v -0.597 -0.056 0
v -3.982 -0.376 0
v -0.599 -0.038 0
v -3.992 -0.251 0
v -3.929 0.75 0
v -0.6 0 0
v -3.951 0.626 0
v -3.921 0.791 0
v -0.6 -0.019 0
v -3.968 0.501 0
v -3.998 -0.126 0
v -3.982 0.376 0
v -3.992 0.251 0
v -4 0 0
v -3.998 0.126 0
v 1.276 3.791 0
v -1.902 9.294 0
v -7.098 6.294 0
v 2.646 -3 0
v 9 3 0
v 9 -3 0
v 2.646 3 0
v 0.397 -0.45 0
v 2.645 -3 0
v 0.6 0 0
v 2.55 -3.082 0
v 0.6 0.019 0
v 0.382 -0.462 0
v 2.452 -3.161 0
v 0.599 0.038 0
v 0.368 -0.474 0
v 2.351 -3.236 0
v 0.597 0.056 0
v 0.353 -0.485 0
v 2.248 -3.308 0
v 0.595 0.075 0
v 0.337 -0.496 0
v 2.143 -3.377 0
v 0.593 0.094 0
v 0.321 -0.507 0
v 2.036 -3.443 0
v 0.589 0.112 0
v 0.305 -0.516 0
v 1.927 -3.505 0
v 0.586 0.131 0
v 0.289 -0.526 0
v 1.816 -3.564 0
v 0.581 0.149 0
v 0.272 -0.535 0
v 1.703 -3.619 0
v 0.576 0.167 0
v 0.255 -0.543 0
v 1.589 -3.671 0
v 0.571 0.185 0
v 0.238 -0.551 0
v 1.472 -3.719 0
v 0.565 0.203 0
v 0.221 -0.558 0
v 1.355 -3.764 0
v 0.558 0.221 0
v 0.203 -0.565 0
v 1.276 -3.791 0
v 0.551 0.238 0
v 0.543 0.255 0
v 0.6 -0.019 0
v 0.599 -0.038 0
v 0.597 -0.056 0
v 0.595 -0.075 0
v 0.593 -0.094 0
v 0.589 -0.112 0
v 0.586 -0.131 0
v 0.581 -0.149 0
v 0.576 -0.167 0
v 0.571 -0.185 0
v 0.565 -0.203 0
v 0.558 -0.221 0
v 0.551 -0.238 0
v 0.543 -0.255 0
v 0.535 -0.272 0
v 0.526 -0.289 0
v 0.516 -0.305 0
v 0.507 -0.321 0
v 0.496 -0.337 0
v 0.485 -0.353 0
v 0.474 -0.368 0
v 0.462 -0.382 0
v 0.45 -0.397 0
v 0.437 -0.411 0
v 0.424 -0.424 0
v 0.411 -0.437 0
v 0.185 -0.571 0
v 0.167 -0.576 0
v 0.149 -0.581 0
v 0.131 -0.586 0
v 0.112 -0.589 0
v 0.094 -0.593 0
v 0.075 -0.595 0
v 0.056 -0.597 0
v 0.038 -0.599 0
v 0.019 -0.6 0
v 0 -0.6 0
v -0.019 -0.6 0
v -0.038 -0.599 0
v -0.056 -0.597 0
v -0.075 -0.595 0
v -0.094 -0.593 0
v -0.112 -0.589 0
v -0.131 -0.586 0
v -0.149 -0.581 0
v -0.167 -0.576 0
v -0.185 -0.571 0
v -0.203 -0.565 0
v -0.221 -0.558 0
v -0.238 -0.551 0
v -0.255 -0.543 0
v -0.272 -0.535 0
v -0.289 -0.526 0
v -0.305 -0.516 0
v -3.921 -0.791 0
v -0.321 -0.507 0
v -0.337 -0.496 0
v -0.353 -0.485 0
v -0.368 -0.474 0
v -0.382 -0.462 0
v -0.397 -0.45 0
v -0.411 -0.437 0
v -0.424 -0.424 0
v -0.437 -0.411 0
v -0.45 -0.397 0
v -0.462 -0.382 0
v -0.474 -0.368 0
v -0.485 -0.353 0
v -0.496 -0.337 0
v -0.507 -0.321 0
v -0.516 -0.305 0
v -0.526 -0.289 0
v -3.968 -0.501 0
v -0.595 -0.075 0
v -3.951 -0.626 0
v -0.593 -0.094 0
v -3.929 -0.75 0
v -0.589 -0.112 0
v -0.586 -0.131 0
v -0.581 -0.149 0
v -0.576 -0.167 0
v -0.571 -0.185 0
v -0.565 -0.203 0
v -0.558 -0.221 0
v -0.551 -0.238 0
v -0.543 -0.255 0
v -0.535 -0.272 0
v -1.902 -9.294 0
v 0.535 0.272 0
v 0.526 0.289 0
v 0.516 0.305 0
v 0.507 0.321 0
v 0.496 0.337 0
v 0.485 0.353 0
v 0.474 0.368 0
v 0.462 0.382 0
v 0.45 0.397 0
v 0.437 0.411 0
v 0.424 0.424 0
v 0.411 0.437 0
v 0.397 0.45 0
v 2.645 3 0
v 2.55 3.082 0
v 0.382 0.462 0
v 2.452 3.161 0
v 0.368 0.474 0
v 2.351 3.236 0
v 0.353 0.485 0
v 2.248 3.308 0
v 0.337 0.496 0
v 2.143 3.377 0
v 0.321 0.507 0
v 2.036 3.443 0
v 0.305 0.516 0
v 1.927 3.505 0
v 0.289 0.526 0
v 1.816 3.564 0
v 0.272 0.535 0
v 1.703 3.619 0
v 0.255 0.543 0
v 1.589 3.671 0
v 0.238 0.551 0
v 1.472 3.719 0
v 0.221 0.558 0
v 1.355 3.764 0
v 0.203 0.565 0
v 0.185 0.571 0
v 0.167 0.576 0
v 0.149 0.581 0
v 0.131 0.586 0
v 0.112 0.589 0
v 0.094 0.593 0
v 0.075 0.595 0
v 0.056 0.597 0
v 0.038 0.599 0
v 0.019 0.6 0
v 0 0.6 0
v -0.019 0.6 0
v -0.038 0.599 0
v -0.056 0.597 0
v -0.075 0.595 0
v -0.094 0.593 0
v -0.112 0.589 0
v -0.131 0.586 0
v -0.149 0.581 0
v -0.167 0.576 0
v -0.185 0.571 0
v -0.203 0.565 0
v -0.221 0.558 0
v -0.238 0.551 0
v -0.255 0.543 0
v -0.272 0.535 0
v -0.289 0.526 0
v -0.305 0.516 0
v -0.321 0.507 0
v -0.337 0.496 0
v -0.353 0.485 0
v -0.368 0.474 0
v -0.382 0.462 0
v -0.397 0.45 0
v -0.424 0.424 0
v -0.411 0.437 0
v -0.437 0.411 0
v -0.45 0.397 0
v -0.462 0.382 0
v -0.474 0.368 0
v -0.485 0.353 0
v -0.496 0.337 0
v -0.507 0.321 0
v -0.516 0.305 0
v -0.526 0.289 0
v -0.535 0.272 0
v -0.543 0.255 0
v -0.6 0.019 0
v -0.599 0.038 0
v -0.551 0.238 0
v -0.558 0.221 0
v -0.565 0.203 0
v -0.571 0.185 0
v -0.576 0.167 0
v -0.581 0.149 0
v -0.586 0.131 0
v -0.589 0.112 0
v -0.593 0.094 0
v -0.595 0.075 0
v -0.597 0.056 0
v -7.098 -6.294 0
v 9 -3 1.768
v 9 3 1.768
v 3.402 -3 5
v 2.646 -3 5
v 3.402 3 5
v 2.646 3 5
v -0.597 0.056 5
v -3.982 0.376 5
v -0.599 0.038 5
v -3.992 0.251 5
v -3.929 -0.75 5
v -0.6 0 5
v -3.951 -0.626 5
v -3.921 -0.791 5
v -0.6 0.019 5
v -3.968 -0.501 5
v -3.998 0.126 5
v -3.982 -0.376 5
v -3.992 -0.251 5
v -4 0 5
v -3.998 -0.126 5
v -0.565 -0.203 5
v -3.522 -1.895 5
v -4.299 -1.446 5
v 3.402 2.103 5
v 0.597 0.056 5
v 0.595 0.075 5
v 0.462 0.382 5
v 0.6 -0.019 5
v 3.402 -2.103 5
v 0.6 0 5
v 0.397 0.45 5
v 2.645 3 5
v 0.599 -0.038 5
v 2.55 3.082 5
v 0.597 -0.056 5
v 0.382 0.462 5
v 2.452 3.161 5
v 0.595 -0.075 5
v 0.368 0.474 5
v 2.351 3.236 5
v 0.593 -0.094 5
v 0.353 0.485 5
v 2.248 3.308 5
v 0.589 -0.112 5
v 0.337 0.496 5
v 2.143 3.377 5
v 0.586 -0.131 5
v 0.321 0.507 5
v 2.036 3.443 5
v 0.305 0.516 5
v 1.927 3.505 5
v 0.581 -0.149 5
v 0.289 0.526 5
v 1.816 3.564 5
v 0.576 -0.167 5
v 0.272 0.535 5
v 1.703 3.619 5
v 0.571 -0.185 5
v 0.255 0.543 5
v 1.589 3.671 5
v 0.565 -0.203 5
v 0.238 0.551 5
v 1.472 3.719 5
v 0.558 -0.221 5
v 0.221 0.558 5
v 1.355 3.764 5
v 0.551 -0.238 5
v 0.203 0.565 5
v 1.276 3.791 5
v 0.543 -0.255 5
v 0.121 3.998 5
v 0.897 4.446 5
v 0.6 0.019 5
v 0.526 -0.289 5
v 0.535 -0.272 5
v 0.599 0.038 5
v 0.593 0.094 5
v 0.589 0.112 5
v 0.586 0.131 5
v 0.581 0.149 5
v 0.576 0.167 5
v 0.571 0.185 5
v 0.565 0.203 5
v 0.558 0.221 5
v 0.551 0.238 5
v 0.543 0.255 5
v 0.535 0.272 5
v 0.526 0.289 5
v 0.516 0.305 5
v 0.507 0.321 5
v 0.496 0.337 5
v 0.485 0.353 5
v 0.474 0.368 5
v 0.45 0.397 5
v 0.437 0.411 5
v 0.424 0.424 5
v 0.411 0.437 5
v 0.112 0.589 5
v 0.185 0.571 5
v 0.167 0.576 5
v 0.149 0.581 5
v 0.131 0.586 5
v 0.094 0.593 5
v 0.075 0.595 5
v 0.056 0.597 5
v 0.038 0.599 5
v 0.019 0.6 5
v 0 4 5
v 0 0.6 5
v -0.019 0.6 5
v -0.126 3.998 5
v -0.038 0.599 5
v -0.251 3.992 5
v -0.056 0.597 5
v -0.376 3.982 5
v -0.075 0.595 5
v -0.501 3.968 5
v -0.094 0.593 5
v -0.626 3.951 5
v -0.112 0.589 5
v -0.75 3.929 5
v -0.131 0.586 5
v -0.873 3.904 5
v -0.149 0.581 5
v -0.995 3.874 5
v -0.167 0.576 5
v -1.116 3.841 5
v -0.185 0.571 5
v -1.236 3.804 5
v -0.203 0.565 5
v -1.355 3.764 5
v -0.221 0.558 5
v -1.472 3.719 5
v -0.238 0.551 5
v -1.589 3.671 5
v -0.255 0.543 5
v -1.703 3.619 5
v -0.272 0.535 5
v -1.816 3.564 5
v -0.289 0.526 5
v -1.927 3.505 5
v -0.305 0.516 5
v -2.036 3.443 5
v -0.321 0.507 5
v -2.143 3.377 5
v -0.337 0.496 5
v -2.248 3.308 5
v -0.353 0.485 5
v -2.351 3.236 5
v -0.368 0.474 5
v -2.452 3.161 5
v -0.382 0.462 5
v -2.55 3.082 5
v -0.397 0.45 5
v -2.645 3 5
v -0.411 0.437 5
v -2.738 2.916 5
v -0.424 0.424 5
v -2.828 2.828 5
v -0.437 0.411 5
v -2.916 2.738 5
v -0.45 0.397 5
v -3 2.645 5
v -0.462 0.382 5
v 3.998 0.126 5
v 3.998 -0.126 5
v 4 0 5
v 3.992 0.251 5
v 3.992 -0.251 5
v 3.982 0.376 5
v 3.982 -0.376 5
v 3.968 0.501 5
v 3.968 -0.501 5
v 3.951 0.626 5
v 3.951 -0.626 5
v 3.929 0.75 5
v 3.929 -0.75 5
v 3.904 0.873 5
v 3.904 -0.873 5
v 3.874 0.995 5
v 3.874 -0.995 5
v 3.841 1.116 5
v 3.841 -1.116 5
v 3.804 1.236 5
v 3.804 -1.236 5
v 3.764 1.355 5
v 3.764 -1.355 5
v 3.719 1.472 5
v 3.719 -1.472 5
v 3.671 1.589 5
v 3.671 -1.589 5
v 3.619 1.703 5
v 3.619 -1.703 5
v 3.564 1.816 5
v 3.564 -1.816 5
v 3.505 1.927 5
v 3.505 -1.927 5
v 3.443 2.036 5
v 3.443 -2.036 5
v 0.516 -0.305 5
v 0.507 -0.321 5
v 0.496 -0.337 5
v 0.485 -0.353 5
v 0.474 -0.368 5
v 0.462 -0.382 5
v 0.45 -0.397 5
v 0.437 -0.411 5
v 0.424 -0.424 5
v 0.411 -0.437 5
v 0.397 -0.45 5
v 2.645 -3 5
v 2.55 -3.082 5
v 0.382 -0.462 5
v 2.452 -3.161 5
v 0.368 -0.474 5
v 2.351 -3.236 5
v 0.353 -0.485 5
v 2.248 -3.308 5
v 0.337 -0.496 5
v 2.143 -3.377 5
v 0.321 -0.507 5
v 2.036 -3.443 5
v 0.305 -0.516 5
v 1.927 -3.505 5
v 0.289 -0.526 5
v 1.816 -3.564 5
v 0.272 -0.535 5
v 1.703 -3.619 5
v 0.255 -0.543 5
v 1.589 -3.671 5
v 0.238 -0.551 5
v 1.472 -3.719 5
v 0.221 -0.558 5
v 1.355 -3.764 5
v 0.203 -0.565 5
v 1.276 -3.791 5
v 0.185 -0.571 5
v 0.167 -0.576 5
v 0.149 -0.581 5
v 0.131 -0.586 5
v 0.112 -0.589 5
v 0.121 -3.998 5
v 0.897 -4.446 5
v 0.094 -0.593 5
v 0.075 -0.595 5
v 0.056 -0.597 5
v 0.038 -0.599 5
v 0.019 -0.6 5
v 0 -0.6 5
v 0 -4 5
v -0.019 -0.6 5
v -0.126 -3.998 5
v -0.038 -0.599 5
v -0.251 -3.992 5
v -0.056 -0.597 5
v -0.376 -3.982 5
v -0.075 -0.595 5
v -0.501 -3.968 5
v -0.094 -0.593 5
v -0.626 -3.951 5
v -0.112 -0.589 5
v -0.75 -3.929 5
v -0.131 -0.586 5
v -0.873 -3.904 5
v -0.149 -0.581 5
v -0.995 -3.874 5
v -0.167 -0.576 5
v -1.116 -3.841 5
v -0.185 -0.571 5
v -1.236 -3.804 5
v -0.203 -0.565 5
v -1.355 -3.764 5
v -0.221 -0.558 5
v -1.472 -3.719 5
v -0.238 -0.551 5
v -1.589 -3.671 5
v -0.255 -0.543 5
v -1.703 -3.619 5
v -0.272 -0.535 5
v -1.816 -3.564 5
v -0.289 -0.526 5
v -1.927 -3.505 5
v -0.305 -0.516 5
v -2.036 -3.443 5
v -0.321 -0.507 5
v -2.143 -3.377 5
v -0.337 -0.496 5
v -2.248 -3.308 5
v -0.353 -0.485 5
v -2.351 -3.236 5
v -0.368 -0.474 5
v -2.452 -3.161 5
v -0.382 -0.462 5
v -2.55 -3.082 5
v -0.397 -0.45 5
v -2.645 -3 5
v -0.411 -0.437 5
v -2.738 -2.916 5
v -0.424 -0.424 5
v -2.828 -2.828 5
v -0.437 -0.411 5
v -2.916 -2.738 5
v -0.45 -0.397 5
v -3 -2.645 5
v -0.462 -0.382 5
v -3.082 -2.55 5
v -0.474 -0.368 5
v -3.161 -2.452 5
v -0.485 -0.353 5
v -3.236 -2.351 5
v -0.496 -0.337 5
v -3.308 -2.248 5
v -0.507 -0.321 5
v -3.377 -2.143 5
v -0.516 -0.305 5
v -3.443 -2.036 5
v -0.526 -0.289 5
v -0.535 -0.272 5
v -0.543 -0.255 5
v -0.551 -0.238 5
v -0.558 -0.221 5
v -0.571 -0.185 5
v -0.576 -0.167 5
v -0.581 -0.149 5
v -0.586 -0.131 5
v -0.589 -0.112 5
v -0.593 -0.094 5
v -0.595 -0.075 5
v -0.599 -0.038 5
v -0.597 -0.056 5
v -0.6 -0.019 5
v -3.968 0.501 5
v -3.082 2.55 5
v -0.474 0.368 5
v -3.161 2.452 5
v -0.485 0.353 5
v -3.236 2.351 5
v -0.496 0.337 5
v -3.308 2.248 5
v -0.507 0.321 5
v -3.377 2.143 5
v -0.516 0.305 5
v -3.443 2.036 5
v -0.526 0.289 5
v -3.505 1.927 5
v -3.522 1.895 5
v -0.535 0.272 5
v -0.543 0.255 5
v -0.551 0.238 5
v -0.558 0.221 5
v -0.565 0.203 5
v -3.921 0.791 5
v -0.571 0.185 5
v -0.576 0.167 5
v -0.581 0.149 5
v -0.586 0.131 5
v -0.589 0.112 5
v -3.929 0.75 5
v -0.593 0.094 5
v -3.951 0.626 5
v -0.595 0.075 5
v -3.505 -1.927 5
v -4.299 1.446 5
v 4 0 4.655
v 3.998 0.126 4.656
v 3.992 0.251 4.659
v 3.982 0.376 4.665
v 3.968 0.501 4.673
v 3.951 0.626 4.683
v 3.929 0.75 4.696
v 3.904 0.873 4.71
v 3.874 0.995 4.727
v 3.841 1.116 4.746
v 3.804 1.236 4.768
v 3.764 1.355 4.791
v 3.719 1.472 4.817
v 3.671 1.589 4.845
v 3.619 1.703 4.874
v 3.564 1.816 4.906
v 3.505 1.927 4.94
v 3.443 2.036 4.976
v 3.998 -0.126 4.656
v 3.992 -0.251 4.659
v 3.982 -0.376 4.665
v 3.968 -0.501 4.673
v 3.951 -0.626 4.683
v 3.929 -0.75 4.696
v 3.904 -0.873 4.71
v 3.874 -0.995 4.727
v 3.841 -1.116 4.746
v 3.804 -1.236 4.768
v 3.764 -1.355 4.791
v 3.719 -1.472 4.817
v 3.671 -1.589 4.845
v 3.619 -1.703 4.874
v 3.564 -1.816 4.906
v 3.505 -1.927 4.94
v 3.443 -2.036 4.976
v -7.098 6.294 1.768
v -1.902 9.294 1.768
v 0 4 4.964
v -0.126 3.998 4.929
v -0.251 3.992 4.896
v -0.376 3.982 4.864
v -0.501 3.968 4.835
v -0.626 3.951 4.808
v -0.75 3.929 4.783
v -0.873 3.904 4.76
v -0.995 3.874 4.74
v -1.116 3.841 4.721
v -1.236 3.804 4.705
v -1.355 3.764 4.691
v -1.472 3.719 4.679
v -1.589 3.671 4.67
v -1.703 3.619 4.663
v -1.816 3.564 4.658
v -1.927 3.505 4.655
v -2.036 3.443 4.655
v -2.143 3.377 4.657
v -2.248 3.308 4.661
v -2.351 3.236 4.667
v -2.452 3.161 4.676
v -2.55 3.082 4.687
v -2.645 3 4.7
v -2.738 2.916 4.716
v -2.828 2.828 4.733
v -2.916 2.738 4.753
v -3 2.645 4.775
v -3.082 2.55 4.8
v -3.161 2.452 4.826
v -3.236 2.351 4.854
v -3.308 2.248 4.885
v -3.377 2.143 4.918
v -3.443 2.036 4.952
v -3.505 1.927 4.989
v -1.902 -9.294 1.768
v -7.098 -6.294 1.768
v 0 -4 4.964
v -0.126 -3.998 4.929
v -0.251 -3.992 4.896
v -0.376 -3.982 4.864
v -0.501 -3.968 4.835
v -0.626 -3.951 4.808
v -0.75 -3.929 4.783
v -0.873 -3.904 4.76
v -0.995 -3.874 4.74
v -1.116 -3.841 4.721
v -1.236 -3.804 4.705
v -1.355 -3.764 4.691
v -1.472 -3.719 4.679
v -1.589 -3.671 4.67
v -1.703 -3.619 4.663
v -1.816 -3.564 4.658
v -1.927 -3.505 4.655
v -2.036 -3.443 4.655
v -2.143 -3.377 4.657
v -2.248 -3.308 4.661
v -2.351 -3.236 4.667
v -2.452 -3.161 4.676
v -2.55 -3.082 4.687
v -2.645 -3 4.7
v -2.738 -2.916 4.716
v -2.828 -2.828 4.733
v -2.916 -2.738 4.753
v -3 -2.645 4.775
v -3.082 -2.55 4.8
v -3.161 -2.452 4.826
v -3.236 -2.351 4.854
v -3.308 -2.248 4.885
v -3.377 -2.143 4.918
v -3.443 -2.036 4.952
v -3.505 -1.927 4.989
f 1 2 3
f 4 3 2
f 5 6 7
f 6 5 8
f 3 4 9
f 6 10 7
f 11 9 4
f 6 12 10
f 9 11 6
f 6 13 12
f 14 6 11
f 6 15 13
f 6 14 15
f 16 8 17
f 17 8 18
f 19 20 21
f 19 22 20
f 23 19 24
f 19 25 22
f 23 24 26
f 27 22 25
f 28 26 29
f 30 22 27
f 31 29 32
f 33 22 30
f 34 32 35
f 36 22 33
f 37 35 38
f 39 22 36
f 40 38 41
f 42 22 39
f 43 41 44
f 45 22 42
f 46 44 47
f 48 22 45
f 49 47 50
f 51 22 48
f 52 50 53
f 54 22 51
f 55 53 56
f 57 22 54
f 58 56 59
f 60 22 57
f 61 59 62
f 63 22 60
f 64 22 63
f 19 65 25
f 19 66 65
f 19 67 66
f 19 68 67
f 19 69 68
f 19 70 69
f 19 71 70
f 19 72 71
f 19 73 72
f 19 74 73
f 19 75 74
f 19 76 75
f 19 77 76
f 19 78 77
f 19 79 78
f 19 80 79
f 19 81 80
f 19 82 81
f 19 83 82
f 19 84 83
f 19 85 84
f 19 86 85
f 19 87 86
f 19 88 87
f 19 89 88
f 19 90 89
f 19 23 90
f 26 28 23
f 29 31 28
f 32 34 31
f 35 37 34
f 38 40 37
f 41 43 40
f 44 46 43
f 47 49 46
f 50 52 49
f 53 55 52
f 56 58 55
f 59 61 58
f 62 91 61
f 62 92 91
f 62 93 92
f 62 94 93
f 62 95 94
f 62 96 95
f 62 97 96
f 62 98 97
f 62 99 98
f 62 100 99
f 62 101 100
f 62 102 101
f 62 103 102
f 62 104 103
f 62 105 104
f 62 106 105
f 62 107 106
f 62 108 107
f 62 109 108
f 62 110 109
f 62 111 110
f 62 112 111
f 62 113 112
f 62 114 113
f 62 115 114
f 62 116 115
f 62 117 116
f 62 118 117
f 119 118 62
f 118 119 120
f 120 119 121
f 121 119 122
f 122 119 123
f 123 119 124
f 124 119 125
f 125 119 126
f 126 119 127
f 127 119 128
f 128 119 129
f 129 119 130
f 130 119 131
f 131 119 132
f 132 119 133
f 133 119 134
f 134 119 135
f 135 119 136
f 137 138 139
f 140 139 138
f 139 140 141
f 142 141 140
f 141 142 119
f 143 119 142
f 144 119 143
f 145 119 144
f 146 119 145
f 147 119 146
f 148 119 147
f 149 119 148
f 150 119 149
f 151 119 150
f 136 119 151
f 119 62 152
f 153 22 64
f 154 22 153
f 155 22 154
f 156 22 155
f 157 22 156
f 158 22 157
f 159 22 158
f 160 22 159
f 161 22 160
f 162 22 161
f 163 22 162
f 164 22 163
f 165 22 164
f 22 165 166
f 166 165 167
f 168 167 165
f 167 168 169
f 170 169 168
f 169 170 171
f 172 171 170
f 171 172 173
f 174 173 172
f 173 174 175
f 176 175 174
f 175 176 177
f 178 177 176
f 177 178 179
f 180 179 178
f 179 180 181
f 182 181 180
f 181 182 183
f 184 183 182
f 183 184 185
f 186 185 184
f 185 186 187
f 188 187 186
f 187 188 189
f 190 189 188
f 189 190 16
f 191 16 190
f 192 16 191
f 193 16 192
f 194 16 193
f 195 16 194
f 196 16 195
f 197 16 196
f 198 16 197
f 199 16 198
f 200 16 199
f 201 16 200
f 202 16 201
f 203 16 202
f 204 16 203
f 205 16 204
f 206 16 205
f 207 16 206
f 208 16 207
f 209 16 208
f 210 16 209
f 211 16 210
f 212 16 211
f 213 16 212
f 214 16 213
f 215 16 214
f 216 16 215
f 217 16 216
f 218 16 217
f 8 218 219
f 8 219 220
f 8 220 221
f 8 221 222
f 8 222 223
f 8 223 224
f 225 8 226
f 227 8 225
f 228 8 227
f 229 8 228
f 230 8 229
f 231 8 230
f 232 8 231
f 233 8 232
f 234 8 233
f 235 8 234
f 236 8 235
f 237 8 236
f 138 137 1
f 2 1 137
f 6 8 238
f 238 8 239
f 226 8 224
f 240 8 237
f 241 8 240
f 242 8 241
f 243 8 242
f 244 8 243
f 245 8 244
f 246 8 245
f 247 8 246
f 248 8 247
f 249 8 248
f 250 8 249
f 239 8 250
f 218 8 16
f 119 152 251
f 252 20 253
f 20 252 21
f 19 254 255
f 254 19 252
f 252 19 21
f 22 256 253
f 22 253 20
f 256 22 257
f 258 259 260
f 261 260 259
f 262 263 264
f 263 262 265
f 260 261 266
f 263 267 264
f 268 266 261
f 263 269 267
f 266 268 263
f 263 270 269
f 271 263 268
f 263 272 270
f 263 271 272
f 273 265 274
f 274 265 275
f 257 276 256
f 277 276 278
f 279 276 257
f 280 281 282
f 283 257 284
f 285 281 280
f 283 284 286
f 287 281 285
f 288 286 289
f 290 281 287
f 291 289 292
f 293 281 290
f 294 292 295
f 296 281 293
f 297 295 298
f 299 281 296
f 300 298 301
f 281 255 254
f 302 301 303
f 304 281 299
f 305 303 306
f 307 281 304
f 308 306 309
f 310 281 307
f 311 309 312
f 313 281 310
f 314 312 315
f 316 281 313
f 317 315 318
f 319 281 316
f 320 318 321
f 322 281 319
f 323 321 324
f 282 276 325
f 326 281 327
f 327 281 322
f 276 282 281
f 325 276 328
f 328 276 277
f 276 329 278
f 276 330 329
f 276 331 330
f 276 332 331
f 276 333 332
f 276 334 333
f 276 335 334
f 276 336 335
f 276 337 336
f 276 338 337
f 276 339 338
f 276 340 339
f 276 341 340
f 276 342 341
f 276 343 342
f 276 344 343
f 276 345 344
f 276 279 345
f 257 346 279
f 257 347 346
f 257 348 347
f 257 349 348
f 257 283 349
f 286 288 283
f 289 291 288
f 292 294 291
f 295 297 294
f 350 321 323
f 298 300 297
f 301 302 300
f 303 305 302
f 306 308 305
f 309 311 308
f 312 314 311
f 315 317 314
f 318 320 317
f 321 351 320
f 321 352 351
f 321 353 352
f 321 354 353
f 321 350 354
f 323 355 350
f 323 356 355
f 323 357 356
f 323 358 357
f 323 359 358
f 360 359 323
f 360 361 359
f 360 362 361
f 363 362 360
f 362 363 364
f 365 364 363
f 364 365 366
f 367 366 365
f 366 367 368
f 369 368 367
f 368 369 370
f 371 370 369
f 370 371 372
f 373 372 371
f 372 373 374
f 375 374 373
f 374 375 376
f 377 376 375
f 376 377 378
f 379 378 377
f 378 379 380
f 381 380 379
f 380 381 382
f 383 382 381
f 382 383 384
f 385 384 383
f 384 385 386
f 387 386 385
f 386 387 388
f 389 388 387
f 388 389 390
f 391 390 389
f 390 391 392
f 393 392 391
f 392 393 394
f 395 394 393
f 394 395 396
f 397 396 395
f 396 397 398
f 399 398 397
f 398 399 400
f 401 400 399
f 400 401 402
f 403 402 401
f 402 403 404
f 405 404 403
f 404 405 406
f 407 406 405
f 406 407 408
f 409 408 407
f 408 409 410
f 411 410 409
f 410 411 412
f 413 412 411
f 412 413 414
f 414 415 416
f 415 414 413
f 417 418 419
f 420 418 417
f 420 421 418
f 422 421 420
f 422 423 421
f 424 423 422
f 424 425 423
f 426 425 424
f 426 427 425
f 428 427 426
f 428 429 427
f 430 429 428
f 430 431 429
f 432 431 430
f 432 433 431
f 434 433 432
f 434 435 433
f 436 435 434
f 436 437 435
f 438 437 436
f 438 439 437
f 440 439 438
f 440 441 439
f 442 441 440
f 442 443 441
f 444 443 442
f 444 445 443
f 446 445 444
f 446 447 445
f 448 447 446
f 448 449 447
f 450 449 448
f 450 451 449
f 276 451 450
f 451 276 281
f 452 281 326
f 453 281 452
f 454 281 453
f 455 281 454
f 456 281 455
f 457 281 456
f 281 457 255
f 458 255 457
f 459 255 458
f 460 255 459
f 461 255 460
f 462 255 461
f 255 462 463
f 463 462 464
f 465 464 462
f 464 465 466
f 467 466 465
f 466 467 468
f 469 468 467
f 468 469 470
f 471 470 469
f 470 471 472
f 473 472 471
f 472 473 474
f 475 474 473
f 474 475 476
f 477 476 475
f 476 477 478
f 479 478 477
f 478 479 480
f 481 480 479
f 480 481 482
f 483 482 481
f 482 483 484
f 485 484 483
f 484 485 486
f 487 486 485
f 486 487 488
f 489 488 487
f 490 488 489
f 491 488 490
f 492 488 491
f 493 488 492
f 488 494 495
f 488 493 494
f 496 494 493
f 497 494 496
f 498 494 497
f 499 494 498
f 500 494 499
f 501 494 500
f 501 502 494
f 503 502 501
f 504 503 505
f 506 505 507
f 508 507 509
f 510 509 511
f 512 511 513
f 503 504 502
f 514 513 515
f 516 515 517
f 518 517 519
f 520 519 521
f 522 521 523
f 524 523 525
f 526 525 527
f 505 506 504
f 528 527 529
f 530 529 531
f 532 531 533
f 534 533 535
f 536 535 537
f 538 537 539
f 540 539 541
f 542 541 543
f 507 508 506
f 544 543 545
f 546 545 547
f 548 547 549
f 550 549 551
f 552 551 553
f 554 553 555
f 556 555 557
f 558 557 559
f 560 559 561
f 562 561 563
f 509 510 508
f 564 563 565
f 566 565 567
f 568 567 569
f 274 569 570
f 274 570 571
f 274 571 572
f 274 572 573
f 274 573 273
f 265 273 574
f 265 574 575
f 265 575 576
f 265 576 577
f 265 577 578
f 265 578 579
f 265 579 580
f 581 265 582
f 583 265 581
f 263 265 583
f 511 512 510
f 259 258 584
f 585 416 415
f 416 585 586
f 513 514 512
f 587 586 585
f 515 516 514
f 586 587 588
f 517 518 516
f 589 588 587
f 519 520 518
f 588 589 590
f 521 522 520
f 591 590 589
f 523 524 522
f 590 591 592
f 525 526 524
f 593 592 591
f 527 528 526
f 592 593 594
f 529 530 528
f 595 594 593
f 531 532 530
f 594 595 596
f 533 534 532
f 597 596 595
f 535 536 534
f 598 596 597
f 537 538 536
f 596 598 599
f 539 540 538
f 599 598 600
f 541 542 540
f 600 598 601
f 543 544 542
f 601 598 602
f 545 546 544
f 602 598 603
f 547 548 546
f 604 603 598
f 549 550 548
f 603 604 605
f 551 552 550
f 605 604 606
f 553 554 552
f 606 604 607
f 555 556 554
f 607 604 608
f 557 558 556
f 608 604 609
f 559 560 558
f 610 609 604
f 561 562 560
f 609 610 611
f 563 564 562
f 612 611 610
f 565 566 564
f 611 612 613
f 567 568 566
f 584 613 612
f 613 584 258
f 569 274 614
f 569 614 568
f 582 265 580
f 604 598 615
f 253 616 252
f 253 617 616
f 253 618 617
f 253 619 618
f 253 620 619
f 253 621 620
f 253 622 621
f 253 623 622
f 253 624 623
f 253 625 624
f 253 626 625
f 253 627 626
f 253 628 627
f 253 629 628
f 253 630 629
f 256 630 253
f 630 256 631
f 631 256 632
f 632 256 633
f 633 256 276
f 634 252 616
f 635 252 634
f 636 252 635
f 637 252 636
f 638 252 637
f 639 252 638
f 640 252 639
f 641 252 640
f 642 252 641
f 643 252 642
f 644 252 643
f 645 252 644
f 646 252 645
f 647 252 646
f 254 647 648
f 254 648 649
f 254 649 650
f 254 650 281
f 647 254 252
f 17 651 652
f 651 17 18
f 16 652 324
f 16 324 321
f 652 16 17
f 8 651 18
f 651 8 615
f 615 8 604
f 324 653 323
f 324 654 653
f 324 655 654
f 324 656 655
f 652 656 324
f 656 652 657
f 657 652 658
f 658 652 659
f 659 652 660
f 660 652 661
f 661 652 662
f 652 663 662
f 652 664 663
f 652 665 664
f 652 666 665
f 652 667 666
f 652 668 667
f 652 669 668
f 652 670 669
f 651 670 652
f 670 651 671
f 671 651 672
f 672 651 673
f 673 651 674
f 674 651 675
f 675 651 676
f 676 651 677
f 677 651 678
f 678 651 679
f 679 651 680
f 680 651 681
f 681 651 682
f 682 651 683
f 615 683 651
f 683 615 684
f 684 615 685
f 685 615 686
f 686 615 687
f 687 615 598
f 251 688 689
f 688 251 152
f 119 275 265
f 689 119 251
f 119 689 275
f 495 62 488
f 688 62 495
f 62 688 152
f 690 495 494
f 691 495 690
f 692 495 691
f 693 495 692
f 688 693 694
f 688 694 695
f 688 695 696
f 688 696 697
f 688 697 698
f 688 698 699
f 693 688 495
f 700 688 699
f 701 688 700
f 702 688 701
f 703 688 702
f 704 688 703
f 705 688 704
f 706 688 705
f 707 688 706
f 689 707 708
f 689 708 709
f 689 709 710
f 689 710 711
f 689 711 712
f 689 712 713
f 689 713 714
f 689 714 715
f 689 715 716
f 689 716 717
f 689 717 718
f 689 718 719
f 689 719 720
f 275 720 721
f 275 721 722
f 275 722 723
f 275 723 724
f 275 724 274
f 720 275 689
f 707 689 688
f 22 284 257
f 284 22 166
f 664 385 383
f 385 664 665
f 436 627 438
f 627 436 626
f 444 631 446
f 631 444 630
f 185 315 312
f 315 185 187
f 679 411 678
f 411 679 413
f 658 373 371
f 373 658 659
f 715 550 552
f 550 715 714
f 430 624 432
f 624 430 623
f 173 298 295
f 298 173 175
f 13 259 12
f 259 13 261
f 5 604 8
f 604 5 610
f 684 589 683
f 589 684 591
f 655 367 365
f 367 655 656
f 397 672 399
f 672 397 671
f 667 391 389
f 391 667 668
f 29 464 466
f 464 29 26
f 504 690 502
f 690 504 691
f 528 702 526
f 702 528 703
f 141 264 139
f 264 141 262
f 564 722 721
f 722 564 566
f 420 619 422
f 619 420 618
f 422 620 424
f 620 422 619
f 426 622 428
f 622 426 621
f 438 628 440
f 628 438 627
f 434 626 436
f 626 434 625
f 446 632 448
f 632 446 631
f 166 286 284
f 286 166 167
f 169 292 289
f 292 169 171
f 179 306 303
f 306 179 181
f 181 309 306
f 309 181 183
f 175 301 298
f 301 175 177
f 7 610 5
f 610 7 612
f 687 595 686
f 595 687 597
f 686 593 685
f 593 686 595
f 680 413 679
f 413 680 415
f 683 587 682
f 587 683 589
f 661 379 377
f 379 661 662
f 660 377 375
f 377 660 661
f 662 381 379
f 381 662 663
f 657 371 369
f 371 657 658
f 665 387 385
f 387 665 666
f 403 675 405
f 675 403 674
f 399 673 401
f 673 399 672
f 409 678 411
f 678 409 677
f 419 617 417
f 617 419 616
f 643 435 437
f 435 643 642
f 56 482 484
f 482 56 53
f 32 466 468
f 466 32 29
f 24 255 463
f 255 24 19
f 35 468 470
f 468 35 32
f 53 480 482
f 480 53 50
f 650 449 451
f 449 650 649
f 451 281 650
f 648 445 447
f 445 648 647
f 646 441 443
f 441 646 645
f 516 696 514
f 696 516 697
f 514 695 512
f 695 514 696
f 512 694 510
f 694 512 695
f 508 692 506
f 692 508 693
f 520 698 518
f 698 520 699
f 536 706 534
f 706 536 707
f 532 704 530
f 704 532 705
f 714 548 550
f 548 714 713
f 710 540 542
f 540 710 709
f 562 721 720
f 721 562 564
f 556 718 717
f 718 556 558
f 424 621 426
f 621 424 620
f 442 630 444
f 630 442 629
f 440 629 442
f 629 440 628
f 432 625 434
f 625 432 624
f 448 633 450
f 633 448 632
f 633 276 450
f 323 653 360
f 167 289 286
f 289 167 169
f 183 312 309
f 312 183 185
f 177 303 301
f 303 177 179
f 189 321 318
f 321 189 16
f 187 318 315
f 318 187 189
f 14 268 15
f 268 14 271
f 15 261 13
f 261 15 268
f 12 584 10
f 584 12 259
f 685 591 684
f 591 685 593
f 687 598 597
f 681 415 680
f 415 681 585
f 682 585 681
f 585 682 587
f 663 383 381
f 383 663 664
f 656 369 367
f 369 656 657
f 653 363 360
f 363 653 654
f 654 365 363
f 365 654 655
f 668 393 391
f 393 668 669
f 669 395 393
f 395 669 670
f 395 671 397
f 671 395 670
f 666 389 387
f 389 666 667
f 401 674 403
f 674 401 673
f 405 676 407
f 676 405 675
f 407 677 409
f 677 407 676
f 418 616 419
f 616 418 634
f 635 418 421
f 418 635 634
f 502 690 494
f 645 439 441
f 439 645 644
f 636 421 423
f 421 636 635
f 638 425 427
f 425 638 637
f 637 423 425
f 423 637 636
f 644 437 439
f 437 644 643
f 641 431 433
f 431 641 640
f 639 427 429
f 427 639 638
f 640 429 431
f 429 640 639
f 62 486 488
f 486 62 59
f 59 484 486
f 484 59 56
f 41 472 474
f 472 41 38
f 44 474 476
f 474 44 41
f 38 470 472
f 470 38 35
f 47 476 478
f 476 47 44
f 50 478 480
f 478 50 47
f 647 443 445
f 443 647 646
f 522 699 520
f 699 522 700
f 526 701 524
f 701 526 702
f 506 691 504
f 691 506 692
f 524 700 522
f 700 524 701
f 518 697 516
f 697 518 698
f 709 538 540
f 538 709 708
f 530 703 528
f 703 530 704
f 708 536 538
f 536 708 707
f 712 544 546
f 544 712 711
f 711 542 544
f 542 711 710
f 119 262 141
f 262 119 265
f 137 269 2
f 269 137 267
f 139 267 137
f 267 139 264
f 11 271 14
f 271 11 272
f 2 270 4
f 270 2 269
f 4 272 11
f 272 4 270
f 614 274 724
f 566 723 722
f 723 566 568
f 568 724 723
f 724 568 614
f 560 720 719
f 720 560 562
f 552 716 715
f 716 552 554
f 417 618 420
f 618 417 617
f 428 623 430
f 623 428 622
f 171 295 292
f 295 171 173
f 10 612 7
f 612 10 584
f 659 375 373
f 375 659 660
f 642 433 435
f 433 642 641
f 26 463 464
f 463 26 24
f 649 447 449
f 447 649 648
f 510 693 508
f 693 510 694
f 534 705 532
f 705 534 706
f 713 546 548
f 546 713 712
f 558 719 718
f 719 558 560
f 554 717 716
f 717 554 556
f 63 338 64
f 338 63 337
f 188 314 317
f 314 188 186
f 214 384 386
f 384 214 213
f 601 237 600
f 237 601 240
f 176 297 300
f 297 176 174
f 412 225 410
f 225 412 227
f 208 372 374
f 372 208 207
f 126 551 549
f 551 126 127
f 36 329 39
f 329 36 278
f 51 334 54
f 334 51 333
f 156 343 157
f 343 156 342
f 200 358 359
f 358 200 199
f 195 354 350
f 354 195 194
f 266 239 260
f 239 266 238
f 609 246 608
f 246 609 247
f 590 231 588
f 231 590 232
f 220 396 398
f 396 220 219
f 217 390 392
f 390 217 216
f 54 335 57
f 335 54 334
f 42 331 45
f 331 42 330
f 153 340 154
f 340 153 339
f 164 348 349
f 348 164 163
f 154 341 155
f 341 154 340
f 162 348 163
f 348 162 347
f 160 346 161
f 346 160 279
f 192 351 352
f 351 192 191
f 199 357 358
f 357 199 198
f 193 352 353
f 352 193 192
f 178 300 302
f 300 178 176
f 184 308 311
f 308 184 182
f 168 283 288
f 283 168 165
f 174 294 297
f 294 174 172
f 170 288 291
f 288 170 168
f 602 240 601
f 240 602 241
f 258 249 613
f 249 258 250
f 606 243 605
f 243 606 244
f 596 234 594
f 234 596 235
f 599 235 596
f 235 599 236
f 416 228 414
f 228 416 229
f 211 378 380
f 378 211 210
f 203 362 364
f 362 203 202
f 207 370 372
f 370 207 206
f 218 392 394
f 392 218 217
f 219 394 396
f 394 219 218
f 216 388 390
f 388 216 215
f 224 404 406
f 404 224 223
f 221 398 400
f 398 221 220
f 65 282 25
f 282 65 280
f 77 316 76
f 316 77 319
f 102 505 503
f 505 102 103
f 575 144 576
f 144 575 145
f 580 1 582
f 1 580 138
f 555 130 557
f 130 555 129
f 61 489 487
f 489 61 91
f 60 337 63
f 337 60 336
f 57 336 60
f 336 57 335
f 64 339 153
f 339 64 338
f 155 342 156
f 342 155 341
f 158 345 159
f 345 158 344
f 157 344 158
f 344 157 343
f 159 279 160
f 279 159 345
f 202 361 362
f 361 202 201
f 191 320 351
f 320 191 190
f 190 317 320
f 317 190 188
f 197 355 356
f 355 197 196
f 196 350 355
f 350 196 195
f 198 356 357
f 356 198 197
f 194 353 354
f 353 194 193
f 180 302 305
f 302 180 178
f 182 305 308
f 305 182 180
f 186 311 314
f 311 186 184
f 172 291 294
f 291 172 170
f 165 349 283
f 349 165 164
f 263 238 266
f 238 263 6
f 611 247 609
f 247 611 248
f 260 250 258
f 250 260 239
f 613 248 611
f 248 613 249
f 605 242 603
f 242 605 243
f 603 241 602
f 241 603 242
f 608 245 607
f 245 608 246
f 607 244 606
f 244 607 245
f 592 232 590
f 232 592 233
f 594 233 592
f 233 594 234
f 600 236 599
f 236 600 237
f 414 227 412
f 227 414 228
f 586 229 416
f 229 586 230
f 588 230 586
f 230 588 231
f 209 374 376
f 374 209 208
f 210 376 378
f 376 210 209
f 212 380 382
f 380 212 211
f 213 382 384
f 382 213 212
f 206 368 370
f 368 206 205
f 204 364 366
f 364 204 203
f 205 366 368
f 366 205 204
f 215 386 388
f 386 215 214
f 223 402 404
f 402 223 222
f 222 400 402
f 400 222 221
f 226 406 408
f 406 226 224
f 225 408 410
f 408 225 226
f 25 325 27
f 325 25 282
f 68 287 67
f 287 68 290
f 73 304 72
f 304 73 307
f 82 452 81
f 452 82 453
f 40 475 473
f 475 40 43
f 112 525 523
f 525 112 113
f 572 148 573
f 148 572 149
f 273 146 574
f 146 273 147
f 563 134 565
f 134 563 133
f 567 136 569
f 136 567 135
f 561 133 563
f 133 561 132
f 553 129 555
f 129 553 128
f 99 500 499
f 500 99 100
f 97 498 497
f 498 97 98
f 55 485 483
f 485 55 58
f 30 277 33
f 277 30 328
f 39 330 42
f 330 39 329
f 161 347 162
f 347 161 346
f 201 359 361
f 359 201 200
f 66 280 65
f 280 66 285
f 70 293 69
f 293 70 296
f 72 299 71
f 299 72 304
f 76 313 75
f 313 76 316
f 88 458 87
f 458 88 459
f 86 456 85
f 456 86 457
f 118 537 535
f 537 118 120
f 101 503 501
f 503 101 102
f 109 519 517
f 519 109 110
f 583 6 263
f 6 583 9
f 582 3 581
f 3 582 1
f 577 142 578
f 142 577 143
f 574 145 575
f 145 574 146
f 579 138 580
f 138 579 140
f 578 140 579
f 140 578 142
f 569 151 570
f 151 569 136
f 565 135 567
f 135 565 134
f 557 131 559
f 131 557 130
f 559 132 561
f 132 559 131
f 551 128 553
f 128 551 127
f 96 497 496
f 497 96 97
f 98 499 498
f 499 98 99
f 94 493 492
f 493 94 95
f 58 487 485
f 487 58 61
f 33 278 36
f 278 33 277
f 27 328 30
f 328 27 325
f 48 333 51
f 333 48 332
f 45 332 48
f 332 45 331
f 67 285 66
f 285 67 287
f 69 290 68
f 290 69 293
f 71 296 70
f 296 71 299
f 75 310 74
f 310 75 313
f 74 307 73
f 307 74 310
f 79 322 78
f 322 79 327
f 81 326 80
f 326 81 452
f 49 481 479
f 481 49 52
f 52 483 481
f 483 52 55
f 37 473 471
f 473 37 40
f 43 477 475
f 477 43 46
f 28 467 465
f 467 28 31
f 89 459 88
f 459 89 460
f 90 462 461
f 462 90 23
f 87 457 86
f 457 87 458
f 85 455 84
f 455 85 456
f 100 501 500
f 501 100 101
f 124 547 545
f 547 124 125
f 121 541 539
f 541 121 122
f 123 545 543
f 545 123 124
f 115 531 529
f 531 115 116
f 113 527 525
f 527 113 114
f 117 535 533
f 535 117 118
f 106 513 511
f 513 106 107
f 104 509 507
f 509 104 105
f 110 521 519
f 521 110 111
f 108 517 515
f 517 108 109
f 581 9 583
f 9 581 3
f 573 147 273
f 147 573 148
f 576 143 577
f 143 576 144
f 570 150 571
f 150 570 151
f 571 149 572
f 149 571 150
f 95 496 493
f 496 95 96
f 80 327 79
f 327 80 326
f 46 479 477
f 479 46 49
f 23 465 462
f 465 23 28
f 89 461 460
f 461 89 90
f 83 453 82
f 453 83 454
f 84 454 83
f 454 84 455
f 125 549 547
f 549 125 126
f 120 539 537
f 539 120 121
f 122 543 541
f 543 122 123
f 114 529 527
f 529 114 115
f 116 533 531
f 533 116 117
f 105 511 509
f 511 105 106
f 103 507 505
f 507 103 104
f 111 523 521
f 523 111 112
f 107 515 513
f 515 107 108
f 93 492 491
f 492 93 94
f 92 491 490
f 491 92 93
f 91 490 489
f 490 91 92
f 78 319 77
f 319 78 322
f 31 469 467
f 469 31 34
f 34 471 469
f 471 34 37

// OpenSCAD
angle = 30;


module leg () {
  linear_extrude(height=5) 
       square([8,6],true);
}
module nleg () {
  rotate(a = angle, v = [0, 1, 0])  
  linear_extrude(height=5) 
       square([11,8],true);
}

module center () {
difference(){  
    cylinder(  5, 4, 4,false,$fn=200);
    cylinder(  5, 0.6, 0.6,false,$fn=200);
    
}
}
union(){
  
   rotate(a = 0, v = [0, 0, 1])
    translate ([5,0,0]) 
        difference(){  
            leg();
            translate ([1,0,3.5]) 
            nleg();
        }  
    rotate(a = 120, v = [0, 0, 1])
    translate ([5,0,0]) 
        difference(){  
            leg();
            translate ([1,0,3.5]) 
            nleg();
        }  
    rotate(a = 240, v = [0, 0, 1])
    translate ([5,0,0]) 
        difference(){  
            leg();
            translate ([1,0,3.5]) 
            nleg();
        }      
   center ();
}
